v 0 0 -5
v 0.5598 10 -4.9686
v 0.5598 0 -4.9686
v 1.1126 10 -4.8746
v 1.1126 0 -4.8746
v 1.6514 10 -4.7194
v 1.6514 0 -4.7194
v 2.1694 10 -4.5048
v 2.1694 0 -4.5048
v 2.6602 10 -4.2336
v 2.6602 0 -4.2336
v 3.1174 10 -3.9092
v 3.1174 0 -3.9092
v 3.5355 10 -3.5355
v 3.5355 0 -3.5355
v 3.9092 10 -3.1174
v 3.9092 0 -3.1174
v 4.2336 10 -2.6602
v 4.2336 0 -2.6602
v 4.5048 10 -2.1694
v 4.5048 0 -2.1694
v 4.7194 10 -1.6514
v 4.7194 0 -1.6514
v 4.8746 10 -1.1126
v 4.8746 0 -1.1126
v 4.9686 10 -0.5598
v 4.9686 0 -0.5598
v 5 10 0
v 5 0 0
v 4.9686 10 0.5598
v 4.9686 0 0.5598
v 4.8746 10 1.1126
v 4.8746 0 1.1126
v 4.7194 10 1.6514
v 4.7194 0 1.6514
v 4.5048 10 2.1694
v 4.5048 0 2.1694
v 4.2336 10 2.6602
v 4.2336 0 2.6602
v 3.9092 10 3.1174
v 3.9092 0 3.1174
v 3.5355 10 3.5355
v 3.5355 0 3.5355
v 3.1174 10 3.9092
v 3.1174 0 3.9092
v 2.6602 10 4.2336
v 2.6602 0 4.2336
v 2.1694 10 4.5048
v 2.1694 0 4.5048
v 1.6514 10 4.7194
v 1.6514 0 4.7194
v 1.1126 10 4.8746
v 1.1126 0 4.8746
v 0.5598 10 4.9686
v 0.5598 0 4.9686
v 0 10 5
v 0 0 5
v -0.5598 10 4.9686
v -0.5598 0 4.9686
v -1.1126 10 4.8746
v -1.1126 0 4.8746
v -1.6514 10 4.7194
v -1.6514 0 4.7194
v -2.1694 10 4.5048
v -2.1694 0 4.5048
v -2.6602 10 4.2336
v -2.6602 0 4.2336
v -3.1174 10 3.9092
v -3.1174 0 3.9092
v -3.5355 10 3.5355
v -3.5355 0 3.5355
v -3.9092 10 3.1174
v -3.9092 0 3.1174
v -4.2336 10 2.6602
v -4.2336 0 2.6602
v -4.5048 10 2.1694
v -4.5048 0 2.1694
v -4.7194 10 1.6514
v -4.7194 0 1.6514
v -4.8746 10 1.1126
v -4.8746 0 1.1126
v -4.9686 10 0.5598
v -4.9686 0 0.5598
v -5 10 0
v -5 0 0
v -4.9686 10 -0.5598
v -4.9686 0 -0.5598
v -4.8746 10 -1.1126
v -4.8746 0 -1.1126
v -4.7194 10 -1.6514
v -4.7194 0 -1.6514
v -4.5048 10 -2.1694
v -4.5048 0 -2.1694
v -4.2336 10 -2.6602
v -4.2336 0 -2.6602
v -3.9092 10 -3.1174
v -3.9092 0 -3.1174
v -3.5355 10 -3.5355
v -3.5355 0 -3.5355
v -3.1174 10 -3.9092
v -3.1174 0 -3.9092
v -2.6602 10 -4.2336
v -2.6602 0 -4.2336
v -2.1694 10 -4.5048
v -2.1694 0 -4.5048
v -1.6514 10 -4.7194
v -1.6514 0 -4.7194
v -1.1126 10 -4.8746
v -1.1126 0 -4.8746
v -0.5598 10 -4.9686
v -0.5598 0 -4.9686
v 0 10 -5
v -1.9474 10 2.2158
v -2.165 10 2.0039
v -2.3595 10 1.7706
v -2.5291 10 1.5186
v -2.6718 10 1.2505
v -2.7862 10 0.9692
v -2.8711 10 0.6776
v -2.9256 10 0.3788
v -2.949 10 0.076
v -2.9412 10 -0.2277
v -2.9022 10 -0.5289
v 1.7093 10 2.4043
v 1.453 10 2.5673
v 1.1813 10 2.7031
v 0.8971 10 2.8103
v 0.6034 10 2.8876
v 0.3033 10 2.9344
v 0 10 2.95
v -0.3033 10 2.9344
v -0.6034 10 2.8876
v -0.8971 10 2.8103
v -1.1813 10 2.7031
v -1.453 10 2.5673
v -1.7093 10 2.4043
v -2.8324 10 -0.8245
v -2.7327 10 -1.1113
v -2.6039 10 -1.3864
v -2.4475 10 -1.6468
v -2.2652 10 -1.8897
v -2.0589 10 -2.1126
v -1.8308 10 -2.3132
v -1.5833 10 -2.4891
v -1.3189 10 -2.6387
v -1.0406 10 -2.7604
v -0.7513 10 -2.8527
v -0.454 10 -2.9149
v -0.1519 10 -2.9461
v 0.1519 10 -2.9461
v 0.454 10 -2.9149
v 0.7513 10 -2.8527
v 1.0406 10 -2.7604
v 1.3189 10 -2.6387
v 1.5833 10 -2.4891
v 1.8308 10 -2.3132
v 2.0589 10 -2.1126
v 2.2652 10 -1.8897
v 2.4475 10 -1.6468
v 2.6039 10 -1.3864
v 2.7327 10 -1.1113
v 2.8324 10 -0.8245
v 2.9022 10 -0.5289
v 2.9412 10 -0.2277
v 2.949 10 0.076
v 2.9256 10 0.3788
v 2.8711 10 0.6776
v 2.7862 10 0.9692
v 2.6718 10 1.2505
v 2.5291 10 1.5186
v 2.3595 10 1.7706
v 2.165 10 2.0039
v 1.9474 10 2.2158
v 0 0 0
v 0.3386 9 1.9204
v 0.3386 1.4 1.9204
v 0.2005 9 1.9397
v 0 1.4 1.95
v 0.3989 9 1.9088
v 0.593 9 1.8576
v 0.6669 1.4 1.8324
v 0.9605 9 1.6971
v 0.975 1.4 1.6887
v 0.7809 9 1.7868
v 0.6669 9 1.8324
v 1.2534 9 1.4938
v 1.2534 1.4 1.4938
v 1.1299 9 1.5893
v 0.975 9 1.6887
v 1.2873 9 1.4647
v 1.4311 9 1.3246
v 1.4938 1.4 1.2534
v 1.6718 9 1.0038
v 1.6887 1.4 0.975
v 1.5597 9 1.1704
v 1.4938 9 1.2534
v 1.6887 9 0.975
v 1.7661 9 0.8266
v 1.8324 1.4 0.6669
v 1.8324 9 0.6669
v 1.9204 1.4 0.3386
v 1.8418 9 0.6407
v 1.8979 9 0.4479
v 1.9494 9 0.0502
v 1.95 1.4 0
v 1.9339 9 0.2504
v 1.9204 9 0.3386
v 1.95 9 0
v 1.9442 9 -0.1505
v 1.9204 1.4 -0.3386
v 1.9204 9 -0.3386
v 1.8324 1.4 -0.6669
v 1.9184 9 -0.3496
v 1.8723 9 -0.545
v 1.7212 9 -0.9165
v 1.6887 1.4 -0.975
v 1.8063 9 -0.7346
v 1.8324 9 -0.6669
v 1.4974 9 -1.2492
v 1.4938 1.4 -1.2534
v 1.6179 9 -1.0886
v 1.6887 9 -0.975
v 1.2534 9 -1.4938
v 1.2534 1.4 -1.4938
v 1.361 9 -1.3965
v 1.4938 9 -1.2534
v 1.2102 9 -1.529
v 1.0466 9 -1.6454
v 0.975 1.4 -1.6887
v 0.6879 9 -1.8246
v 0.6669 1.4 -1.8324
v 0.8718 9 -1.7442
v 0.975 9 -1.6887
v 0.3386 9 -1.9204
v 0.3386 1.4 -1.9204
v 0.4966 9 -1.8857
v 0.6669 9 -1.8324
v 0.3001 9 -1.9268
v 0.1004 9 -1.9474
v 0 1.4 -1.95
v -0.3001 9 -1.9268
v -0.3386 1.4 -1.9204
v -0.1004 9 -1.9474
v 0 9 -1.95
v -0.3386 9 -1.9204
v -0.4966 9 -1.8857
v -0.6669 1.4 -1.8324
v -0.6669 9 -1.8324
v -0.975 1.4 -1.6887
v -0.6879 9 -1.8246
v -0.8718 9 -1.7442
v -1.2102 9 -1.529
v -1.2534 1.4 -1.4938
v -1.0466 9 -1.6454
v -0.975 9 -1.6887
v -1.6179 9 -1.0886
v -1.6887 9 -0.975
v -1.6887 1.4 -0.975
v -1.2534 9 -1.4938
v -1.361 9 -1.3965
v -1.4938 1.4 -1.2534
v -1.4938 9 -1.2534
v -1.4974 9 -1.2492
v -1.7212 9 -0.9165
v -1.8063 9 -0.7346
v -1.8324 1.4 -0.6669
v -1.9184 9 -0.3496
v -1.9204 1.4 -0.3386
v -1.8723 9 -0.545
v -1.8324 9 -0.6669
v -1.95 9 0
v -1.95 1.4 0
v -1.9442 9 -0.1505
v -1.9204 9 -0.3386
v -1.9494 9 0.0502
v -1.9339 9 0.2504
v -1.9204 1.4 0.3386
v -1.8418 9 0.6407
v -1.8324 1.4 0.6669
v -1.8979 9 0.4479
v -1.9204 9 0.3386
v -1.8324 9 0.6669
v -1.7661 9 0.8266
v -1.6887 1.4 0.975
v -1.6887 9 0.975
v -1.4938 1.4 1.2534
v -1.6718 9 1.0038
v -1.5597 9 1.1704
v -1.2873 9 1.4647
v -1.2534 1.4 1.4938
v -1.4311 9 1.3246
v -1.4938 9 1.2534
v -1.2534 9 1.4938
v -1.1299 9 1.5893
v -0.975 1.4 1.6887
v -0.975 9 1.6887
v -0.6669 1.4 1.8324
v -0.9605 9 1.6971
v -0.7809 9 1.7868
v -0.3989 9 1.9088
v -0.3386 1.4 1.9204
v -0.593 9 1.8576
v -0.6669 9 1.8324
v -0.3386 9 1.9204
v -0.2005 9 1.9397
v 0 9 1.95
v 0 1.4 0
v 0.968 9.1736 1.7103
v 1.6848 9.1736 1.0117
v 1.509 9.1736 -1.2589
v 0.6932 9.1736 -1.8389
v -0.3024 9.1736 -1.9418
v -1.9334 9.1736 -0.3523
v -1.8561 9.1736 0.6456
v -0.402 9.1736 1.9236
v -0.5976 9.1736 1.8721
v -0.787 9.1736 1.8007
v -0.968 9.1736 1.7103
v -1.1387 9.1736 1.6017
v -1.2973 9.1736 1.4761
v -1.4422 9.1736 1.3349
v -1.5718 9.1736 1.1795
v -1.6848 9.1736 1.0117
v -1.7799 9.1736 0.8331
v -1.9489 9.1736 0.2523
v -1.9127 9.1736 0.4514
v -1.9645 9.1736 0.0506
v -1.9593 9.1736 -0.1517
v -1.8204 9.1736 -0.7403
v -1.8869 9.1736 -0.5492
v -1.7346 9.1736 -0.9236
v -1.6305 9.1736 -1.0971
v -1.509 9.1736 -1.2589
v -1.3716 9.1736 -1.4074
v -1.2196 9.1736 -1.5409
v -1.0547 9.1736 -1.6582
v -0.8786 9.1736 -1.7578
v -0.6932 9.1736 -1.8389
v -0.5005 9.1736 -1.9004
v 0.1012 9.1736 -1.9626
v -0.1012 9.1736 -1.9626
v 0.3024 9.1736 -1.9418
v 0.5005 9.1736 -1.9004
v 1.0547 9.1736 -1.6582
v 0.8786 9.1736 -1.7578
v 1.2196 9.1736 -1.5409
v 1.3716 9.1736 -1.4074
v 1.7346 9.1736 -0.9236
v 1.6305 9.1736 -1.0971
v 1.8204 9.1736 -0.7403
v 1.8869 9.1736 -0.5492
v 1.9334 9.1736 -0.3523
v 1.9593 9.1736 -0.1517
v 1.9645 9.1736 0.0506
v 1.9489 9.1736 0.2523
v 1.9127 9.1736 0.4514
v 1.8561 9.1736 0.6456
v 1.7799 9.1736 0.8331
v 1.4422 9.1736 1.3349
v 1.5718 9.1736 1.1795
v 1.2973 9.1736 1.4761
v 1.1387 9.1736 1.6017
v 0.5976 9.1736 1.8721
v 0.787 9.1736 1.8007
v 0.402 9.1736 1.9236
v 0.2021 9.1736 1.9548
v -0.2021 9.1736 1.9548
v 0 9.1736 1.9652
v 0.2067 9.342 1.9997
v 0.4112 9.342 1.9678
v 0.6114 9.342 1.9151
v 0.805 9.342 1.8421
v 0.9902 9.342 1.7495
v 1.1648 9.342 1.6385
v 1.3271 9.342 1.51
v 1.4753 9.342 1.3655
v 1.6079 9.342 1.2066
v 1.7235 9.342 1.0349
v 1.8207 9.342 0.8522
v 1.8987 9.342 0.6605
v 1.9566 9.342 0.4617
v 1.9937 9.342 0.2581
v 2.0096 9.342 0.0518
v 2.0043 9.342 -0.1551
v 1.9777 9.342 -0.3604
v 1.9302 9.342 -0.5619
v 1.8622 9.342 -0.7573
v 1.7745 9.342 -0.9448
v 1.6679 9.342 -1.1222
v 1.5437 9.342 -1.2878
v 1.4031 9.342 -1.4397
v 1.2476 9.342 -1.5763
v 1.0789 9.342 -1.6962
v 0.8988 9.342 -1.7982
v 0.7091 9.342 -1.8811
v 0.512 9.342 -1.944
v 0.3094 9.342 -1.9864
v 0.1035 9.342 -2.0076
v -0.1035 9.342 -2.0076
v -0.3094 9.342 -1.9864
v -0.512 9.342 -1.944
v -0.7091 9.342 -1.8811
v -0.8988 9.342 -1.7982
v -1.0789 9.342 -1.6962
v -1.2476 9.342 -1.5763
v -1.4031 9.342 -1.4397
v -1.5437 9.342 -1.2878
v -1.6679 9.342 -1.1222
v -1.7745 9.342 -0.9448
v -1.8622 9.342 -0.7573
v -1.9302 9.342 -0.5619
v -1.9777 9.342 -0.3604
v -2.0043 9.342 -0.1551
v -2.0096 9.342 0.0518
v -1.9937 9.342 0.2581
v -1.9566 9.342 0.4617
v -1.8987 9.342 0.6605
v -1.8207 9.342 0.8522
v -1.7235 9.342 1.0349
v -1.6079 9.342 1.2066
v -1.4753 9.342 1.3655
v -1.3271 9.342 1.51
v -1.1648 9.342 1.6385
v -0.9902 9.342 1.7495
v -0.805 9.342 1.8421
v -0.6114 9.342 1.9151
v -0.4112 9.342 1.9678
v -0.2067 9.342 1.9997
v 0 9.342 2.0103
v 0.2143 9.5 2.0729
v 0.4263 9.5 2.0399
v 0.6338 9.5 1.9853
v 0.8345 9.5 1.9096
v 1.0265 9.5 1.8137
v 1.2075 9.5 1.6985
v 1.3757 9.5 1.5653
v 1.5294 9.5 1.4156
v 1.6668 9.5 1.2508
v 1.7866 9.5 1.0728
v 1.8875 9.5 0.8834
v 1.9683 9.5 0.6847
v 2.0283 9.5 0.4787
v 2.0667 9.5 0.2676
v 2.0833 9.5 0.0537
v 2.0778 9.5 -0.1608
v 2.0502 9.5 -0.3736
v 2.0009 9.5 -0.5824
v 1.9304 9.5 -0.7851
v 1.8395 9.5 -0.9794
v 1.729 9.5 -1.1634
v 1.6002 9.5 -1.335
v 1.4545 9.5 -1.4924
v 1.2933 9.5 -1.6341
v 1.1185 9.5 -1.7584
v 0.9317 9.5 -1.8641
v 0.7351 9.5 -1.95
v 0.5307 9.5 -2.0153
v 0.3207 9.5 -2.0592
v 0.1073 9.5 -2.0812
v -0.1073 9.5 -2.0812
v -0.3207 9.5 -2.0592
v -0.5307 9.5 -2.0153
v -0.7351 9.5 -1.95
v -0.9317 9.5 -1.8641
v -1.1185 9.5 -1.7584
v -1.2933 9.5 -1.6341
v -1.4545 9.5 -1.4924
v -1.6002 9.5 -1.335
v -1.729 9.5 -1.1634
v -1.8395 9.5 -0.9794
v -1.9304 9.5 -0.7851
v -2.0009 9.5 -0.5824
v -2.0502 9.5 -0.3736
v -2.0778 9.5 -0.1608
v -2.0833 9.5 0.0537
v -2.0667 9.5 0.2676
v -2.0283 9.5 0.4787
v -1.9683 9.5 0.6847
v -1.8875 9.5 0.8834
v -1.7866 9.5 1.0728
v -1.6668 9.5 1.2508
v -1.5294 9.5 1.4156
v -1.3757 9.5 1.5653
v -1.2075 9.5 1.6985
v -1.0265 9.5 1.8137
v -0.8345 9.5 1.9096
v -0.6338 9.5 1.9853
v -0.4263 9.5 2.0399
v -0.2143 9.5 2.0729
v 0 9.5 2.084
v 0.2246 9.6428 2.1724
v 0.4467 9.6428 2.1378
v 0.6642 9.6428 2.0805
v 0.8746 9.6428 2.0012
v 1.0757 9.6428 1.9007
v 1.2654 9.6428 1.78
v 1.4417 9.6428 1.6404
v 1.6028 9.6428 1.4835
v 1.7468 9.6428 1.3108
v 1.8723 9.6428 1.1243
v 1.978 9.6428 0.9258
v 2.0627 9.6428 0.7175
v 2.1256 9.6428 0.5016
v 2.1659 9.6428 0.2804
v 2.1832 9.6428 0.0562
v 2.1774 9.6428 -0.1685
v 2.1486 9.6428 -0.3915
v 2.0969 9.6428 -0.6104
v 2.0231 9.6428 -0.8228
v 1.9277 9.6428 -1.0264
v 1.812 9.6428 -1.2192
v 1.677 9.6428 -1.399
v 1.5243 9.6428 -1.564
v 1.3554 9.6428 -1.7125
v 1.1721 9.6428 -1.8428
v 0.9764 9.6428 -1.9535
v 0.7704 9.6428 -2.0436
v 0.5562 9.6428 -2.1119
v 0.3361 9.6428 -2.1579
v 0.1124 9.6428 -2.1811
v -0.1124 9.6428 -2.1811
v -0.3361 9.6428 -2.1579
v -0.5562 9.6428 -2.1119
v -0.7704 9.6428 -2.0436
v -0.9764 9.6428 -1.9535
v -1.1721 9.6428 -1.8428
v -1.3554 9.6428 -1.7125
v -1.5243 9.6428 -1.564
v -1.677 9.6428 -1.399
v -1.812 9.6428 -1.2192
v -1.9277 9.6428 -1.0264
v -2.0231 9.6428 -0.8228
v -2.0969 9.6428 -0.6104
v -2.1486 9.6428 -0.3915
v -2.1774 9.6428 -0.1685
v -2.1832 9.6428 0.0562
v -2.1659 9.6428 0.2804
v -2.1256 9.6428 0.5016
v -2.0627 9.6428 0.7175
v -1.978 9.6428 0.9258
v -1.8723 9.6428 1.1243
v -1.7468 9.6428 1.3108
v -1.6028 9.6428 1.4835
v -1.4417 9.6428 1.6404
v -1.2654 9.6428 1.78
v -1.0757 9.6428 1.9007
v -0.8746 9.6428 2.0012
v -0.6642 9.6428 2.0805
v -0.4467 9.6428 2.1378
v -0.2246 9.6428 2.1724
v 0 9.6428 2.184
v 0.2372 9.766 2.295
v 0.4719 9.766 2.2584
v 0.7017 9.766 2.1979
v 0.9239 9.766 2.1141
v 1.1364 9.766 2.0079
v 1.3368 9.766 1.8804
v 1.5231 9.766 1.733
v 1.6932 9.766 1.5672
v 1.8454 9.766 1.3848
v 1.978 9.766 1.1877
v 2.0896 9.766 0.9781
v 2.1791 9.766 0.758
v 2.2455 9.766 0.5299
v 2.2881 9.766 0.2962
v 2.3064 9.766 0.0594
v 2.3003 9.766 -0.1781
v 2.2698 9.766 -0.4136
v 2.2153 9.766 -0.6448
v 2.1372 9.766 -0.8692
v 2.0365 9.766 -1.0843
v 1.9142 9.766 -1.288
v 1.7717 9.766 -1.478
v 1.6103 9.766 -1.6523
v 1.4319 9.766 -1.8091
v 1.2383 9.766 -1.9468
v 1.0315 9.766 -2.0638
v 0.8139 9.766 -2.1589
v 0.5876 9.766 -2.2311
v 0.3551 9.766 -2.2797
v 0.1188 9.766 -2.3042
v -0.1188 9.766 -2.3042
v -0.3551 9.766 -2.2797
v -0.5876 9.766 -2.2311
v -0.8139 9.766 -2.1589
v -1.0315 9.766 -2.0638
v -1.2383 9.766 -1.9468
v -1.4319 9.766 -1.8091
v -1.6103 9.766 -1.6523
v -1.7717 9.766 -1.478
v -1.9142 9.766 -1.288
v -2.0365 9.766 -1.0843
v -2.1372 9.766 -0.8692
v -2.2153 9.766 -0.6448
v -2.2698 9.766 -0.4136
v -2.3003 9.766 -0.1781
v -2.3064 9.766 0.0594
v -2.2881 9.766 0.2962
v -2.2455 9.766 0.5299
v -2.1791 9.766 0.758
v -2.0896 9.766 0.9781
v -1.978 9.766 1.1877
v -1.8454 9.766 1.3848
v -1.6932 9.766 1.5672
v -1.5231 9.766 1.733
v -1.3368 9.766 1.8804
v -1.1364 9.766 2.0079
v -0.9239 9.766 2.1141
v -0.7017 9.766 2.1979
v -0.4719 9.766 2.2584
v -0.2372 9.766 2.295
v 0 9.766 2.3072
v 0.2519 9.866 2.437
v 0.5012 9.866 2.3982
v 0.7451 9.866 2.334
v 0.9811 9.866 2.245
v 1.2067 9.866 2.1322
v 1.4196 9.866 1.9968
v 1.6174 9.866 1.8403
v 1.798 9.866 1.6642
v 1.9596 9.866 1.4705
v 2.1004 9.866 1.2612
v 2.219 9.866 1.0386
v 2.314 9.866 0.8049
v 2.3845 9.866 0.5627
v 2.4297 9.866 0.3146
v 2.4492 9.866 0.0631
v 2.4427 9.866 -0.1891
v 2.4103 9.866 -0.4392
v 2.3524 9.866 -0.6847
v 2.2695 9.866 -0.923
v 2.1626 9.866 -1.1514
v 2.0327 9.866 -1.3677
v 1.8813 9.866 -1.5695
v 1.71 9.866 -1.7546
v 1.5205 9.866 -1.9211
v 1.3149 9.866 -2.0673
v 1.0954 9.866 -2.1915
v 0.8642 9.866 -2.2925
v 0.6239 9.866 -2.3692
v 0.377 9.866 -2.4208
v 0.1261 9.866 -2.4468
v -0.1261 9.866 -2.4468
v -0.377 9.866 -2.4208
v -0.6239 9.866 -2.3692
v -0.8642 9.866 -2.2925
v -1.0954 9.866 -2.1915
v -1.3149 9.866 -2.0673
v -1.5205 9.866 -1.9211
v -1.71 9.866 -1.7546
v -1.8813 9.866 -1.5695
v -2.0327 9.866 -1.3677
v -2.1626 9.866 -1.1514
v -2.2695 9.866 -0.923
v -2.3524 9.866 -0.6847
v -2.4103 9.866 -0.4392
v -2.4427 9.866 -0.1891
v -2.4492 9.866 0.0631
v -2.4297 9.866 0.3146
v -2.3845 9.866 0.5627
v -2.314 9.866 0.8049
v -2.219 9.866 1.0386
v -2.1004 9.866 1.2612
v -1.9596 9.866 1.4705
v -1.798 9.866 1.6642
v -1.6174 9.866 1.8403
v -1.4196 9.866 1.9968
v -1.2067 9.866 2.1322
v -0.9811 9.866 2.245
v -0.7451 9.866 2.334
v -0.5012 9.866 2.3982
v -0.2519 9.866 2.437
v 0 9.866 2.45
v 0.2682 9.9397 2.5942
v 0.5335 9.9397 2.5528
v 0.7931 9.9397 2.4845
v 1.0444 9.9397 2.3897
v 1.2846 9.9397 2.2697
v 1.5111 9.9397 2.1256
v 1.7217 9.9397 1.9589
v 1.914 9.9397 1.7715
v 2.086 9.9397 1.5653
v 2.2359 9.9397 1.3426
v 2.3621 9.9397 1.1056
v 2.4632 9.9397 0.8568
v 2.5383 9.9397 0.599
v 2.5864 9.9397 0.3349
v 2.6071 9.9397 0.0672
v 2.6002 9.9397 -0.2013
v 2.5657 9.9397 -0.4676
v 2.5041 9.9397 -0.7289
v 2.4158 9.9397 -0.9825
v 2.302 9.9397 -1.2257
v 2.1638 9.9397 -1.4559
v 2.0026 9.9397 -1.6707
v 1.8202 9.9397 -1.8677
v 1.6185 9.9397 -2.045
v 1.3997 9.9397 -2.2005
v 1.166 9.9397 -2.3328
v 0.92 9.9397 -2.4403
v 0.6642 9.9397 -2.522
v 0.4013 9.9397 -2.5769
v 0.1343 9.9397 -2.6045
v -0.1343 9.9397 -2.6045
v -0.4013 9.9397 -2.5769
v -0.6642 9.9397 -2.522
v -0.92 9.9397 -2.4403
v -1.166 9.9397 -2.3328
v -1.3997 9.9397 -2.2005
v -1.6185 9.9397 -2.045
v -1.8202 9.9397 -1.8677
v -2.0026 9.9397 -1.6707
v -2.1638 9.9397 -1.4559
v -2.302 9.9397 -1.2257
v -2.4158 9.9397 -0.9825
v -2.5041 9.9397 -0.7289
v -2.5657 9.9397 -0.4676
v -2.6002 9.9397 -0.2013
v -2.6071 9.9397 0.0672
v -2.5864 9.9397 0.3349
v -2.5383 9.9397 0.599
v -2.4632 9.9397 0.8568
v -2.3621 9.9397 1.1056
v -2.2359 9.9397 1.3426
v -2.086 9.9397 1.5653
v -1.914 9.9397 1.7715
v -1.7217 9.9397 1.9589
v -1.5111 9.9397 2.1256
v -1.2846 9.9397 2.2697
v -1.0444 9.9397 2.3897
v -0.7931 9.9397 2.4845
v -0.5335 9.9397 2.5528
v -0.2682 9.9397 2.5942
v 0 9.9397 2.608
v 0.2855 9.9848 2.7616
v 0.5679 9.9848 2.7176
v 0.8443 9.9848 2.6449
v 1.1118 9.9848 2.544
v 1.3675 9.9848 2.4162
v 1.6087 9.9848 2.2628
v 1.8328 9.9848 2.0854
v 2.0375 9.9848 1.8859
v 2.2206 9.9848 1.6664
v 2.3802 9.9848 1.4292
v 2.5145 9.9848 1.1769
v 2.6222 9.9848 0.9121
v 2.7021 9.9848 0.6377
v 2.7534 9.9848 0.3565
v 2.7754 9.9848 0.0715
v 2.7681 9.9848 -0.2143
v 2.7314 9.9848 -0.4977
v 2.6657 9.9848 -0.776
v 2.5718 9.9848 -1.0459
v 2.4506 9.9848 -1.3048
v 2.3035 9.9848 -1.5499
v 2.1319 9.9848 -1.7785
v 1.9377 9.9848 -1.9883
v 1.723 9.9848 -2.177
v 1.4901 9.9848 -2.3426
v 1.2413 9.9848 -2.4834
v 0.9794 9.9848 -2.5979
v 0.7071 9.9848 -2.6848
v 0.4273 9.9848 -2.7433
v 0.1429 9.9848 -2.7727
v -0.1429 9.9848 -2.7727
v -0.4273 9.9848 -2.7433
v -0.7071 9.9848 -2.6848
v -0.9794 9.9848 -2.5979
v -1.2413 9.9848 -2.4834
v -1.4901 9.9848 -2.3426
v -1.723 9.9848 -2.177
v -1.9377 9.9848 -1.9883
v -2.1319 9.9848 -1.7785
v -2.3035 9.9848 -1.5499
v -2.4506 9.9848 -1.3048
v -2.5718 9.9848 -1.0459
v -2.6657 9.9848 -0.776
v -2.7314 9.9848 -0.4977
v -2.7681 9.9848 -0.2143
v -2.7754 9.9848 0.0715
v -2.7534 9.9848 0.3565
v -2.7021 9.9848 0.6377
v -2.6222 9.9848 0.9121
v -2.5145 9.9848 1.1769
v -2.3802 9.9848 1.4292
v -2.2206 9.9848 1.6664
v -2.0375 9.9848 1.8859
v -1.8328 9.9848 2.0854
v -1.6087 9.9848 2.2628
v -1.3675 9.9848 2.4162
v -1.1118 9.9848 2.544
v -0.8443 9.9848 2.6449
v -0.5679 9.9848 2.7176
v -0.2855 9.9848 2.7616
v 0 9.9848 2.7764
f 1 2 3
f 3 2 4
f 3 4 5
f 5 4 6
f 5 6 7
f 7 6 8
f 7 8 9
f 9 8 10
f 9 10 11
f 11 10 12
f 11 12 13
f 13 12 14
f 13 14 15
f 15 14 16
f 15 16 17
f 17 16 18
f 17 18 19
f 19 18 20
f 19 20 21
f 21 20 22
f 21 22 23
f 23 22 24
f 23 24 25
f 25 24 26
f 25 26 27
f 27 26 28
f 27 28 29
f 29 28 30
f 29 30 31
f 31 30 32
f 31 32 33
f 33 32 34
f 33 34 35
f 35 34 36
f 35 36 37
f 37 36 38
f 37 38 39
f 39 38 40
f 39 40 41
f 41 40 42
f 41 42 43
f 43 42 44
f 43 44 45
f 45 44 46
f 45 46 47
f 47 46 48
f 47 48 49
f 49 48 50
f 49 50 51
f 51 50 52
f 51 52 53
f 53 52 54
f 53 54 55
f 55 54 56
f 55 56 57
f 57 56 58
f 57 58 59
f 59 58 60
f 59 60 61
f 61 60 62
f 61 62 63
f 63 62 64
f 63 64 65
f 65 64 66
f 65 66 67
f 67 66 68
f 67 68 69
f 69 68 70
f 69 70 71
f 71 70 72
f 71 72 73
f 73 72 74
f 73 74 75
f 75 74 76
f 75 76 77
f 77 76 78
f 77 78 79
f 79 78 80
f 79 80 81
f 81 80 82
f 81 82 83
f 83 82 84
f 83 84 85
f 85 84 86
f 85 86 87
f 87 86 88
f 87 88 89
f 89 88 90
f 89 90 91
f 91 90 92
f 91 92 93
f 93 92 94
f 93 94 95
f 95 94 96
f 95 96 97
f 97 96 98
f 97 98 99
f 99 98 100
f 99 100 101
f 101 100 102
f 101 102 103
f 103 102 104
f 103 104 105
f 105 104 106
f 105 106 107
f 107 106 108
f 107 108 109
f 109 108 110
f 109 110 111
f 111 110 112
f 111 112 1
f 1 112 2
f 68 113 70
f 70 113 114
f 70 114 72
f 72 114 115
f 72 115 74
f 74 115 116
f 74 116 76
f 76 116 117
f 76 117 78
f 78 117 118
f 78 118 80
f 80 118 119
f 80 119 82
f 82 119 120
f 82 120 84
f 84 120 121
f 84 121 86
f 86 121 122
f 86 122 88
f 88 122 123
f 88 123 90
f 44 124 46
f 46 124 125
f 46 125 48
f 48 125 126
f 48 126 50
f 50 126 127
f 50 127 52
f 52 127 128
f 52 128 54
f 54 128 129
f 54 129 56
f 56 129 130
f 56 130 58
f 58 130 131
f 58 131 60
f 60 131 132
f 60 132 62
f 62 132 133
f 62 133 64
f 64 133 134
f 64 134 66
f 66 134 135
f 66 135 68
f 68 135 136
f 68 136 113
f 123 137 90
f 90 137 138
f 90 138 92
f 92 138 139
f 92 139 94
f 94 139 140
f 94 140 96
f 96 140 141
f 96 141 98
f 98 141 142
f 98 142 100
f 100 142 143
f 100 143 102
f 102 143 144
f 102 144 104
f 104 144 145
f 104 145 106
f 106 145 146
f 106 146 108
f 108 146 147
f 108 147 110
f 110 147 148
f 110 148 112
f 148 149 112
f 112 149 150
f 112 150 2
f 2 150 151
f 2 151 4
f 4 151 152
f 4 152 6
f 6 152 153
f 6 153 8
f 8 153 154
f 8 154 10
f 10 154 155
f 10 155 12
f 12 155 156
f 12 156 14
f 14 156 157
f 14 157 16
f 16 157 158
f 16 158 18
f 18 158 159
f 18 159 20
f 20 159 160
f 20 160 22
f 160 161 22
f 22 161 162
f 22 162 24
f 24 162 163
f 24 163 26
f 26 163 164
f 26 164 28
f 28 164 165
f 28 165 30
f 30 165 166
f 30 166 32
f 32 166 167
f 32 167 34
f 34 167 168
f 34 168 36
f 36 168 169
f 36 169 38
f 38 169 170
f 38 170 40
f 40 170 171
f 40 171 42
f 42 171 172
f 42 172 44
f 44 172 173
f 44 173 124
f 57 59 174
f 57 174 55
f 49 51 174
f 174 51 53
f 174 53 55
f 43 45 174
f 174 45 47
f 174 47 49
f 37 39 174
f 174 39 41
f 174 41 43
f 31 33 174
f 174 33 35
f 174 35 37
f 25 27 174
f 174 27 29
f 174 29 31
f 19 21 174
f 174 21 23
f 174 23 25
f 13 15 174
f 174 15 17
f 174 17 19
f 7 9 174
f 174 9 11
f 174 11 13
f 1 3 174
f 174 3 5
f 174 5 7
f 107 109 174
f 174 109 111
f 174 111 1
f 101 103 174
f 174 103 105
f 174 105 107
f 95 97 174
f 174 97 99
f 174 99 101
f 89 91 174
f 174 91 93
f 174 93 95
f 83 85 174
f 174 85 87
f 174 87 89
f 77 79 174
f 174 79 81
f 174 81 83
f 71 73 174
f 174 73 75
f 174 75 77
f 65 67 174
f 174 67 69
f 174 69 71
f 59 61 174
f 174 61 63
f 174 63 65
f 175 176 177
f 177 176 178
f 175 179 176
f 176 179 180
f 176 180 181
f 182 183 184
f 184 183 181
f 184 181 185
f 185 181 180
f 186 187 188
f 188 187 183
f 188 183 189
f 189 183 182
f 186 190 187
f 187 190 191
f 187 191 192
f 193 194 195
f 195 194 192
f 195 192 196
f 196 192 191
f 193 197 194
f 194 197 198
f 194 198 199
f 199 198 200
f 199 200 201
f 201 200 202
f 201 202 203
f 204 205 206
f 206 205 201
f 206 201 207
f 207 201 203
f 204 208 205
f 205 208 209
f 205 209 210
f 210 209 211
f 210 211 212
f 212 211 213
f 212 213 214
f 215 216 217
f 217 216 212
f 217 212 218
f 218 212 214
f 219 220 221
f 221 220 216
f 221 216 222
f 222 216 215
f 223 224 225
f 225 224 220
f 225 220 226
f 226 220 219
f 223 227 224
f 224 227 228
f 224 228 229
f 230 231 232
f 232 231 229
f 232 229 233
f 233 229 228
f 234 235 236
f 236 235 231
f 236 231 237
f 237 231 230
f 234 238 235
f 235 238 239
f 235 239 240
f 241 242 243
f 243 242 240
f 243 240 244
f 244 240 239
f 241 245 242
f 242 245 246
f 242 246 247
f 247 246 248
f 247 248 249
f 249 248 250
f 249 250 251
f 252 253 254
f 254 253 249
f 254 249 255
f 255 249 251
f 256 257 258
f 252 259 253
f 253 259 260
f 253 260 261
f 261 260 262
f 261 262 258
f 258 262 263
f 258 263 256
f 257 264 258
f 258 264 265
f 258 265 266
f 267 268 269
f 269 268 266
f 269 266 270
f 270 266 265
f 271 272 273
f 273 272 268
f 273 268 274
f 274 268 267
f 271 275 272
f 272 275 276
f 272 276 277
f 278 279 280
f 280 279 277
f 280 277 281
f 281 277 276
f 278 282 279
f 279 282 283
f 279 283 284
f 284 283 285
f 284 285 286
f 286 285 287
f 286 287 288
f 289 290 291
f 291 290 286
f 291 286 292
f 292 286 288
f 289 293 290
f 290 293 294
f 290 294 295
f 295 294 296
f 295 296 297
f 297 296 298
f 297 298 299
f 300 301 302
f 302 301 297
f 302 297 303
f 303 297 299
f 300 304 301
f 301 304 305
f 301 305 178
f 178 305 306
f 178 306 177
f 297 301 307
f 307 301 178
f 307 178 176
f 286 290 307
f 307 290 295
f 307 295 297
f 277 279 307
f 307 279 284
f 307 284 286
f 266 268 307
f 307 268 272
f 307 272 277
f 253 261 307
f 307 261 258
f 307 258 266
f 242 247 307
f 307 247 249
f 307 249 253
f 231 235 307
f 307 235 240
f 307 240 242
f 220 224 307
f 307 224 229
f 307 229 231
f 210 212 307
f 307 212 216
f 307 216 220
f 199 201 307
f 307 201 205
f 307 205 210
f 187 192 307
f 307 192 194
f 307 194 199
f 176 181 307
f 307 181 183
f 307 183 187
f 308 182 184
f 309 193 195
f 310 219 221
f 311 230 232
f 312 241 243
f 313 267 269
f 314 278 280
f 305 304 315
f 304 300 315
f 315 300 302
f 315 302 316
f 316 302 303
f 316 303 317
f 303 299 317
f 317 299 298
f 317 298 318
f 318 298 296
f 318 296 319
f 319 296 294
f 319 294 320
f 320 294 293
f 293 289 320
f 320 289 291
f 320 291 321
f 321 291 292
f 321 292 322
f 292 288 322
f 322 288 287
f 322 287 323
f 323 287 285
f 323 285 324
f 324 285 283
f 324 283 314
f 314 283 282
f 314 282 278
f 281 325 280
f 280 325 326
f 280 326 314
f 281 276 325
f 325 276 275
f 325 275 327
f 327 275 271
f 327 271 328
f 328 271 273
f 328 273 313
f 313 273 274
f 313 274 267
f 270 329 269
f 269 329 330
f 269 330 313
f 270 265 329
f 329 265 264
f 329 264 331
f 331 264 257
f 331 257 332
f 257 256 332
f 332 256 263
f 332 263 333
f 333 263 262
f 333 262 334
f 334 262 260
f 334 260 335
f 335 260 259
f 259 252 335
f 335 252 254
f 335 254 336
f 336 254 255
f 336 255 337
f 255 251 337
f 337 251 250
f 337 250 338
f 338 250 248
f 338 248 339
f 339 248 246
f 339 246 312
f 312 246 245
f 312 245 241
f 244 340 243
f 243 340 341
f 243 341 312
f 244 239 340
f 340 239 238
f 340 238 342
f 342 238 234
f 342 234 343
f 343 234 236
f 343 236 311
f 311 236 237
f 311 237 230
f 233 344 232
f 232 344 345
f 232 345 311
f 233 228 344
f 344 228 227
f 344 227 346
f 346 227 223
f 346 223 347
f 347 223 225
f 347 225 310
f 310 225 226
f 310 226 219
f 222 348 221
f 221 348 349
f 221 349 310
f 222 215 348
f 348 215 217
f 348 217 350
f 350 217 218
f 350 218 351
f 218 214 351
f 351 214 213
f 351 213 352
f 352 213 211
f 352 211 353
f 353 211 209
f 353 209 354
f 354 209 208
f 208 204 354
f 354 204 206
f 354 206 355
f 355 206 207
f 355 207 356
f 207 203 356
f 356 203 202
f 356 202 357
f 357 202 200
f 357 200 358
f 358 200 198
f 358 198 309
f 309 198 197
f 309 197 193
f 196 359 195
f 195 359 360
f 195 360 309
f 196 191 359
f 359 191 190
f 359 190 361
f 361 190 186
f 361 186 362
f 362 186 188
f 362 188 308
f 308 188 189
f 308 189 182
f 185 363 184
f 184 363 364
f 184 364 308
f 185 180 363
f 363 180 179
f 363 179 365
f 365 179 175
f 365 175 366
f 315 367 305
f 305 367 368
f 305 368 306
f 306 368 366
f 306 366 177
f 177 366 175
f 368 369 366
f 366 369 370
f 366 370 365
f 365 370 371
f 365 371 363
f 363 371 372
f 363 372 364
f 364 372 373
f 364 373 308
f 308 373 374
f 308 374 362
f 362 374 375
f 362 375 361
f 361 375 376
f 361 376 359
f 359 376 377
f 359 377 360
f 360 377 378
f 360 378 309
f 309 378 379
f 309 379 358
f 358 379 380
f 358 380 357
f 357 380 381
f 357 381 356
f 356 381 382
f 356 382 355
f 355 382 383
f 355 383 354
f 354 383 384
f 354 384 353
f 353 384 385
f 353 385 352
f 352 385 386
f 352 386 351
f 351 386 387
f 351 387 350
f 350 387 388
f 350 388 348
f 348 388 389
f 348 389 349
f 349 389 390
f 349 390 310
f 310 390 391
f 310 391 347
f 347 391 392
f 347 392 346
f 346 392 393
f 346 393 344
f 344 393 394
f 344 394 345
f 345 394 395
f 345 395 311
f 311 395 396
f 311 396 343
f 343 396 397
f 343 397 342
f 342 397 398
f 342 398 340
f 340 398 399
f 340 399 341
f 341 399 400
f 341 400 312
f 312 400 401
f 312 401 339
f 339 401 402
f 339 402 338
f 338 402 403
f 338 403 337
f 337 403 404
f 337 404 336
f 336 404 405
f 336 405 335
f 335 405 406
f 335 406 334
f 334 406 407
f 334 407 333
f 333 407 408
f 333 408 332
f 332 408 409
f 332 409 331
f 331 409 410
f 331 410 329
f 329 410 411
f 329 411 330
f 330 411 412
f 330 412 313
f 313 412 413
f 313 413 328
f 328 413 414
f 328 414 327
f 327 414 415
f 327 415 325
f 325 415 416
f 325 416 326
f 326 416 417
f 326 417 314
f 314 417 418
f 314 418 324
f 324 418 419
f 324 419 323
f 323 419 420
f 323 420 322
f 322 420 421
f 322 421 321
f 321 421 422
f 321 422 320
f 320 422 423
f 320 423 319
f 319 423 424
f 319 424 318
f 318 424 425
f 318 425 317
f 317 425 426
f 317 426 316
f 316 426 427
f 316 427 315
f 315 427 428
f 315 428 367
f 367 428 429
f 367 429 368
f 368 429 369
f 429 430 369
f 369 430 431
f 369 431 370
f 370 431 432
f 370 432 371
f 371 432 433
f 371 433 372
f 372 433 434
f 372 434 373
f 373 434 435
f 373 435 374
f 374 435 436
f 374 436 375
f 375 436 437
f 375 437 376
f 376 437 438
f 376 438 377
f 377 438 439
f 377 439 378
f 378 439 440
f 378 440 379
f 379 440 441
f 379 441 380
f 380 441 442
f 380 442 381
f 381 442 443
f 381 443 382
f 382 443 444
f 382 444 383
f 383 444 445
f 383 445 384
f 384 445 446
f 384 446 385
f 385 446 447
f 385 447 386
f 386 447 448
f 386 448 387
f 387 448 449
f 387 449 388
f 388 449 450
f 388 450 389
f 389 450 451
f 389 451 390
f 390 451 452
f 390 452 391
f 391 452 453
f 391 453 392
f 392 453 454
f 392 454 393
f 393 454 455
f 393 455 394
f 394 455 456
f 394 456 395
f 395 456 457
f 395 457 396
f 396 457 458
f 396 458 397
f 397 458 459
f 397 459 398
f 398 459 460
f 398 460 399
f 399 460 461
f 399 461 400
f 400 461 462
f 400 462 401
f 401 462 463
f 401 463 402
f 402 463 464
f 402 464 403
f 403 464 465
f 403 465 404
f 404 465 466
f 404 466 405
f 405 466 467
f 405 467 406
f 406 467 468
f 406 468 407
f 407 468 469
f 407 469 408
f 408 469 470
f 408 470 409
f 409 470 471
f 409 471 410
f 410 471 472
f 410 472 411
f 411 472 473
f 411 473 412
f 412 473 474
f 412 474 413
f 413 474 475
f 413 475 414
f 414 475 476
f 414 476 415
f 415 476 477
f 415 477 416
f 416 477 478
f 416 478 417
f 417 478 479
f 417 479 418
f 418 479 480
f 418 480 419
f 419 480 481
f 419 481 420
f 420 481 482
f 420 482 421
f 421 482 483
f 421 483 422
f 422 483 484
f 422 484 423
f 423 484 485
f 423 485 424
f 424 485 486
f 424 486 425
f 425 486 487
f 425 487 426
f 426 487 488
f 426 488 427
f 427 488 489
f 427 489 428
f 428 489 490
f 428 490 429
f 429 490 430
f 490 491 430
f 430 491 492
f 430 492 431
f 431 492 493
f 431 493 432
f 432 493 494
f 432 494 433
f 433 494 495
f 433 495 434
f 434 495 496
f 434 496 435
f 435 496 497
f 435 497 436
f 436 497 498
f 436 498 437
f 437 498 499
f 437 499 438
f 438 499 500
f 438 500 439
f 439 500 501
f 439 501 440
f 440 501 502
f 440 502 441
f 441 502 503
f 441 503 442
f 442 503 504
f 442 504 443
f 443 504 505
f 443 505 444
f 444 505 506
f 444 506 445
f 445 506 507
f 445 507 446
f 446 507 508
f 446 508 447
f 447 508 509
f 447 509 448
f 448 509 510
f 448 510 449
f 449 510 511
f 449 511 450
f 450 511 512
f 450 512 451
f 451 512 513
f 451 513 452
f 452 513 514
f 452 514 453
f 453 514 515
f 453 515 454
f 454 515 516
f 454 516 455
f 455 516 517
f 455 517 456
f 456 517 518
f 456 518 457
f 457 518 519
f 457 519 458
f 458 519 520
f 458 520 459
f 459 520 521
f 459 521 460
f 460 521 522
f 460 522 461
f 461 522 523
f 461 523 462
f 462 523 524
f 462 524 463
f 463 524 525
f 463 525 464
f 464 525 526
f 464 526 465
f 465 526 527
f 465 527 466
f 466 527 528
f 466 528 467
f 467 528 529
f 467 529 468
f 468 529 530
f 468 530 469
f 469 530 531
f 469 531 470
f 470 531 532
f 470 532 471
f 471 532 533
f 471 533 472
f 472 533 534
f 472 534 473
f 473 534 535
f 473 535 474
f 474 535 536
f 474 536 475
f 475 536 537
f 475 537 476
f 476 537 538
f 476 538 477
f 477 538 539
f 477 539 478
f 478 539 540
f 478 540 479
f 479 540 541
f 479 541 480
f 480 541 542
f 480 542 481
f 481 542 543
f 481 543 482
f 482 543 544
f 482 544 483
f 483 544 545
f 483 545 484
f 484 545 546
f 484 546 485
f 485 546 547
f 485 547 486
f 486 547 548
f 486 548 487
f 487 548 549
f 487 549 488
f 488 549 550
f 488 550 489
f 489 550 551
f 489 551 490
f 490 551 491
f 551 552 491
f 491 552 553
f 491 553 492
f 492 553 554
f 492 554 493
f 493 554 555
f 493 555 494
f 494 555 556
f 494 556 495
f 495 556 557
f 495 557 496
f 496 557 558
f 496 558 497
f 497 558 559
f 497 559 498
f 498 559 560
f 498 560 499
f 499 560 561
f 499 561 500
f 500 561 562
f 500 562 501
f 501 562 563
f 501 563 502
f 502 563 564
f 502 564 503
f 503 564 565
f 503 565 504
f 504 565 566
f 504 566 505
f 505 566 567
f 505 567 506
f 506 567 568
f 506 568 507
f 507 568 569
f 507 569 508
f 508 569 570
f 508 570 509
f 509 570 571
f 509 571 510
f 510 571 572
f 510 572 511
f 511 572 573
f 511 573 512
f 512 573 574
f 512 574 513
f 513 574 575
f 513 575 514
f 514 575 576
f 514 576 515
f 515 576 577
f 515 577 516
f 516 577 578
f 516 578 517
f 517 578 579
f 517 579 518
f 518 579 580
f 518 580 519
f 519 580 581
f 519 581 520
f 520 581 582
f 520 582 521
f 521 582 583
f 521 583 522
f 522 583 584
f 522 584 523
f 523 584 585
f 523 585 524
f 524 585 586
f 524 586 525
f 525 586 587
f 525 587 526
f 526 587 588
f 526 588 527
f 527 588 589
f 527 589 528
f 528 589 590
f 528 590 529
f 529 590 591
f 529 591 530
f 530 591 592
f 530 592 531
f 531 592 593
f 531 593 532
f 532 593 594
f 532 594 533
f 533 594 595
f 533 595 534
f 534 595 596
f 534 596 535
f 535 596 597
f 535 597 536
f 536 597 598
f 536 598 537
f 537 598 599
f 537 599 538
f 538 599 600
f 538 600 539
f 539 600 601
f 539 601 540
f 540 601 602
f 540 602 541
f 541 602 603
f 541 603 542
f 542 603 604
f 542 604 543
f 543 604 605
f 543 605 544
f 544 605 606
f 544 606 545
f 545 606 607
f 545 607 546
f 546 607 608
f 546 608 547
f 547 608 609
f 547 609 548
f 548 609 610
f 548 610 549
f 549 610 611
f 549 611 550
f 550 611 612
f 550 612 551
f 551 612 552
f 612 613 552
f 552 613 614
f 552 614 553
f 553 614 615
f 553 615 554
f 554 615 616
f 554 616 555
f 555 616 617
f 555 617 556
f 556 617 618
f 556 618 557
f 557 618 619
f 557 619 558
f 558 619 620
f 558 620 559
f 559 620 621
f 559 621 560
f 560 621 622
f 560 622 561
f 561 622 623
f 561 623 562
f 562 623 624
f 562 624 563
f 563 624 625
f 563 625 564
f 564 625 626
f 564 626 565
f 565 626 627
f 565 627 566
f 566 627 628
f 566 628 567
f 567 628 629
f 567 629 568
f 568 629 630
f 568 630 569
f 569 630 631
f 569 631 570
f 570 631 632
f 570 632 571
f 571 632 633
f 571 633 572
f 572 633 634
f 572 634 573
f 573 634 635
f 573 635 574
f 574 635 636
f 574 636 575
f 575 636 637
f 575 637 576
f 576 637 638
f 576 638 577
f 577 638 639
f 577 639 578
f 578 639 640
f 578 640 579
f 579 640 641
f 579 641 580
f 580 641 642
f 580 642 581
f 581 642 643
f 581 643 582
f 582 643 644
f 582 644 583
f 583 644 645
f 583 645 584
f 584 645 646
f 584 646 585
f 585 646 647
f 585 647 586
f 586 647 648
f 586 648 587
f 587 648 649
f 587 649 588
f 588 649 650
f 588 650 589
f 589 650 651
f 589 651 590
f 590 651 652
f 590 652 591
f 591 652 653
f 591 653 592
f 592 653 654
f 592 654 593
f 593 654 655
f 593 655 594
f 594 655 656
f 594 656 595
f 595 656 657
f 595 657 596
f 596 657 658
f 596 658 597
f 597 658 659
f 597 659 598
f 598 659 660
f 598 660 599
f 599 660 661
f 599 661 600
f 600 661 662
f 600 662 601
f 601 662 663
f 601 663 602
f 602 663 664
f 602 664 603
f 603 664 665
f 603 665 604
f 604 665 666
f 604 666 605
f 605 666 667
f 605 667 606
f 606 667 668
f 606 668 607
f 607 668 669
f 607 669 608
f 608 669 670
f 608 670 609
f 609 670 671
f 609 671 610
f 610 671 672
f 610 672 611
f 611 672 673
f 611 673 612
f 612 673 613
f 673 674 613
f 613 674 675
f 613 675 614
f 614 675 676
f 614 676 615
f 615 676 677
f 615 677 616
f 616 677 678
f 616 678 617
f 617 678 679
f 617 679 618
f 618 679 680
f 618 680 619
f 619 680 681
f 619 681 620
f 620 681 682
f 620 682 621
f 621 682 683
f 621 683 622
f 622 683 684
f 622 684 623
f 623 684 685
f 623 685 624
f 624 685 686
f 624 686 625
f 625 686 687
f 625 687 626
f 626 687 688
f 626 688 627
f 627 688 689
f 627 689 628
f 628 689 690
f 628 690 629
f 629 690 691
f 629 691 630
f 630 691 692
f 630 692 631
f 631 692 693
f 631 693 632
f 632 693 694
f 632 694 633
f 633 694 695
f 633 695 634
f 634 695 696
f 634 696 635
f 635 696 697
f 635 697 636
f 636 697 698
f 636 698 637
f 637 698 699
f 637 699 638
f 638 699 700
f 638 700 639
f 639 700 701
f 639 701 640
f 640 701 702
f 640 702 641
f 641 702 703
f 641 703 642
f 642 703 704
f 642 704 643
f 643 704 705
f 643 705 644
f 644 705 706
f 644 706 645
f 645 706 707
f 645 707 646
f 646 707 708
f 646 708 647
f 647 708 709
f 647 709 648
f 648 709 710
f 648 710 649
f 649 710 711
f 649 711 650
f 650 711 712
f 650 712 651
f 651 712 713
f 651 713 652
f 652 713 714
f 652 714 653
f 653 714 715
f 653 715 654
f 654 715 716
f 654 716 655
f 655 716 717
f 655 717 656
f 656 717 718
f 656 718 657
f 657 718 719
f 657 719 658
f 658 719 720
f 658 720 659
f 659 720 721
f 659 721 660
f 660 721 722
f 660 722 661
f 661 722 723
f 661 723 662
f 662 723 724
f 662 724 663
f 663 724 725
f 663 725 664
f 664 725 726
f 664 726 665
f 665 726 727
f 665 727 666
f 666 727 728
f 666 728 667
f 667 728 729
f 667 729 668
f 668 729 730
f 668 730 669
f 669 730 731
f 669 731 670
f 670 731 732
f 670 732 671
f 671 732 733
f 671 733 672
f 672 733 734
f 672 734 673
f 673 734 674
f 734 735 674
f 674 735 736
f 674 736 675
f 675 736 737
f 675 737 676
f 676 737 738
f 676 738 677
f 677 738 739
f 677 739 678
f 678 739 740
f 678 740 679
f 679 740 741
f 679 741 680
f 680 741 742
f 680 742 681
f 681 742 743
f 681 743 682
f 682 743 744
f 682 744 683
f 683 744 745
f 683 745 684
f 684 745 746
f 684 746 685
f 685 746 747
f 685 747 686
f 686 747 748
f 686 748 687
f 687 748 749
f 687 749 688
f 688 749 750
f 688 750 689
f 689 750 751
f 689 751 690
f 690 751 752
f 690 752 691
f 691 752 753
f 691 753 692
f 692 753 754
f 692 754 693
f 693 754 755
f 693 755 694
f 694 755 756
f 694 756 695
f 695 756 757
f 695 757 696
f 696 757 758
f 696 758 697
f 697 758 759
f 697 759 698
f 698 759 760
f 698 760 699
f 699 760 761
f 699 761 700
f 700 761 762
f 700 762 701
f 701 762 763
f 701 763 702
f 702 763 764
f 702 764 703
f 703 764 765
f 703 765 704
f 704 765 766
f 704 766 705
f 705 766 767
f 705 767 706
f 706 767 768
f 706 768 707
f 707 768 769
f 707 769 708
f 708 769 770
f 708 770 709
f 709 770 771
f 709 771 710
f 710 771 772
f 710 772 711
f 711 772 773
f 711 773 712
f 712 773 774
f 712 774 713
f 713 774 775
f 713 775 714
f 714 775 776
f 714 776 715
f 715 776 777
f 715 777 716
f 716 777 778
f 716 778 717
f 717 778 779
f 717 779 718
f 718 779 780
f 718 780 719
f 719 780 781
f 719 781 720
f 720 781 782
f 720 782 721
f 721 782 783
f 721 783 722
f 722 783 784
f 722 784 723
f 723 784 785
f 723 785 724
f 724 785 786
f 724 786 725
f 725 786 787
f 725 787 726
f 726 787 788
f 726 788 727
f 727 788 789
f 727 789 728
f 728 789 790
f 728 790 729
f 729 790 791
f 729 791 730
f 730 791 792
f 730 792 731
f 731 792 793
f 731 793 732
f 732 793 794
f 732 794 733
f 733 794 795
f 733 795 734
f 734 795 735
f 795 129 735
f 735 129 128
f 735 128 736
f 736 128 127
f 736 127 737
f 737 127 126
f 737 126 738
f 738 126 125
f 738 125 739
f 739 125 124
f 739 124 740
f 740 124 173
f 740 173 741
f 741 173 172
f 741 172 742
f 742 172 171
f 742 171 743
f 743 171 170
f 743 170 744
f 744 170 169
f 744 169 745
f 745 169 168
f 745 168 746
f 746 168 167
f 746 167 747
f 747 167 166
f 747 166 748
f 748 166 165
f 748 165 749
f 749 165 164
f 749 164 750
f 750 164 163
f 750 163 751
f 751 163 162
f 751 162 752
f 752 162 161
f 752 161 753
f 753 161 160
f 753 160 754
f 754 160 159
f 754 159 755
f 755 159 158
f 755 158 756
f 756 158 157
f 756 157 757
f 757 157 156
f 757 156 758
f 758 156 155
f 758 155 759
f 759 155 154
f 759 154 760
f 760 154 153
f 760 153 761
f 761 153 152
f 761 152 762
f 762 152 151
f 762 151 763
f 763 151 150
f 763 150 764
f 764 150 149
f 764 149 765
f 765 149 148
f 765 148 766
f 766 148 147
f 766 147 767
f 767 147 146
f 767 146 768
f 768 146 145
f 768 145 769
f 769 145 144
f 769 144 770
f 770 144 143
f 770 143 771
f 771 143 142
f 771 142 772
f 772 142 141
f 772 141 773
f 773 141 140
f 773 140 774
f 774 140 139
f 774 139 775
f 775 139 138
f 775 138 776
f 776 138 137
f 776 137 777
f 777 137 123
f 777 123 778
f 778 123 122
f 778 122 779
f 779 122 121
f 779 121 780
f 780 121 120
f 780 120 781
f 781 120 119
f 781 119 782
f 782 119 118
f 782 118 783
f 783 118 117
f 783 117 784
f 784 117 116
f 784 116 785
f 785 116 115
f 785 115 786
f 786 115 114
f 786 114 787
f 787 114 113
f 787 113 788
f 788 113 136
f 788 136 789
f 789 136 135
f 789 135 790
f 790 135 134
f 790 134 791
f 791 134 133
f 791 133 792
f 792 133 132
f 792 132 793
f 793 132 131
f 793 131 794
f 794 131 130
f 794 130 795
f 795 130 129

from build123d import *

# Parameters (mm, degrees)
SKETCH_1_R          = 5
EXTRUDE_1_DEPTH     = 10
SKETCH_2_R          = 1.95
CUT_EXTRUDE_1_DEPTH = 8.6
FILLET_1_R          = 1


with BuildPart() as part:
    # Эскиз1 → Бобышка-Вытянуть1 (new body)
    with BuildSketch(Plane(origin=(0, 0, 0), x_dir=(1, 0, 0), z_dir=(0, 1, 0))):
        with Locations(Location((0, 0, 0), (0, 0, 270))):
            Circle(SKETCH_1_R)
    extrude(amount=EXTRUDE_1_DEPTH)

    # Эскиз2 → Вырез-Вытянуть1 (cut)
    with BuildSketch(Plane(origin=(0, 10, 0), x_dir=(1, 0, 0), z_dir=(0, 1, 0))):
        with Locations(Location((0, 0, 0), (0, 0, 270))):
            Circle(SKETCH_2_R)
    extrude(amount=-CUT_EXTRUDE_1_DEPTH, mode=Mode.SUBTRACT)

    # Скругление1
    fillet_1_edges = [part.edges().sort_by_distance(p)[0] for p in [
        (0, 10, -1.95),
    ]]
    fillet(fillet_1_edges, radius=FILLET_1_R)


solid = part.part
